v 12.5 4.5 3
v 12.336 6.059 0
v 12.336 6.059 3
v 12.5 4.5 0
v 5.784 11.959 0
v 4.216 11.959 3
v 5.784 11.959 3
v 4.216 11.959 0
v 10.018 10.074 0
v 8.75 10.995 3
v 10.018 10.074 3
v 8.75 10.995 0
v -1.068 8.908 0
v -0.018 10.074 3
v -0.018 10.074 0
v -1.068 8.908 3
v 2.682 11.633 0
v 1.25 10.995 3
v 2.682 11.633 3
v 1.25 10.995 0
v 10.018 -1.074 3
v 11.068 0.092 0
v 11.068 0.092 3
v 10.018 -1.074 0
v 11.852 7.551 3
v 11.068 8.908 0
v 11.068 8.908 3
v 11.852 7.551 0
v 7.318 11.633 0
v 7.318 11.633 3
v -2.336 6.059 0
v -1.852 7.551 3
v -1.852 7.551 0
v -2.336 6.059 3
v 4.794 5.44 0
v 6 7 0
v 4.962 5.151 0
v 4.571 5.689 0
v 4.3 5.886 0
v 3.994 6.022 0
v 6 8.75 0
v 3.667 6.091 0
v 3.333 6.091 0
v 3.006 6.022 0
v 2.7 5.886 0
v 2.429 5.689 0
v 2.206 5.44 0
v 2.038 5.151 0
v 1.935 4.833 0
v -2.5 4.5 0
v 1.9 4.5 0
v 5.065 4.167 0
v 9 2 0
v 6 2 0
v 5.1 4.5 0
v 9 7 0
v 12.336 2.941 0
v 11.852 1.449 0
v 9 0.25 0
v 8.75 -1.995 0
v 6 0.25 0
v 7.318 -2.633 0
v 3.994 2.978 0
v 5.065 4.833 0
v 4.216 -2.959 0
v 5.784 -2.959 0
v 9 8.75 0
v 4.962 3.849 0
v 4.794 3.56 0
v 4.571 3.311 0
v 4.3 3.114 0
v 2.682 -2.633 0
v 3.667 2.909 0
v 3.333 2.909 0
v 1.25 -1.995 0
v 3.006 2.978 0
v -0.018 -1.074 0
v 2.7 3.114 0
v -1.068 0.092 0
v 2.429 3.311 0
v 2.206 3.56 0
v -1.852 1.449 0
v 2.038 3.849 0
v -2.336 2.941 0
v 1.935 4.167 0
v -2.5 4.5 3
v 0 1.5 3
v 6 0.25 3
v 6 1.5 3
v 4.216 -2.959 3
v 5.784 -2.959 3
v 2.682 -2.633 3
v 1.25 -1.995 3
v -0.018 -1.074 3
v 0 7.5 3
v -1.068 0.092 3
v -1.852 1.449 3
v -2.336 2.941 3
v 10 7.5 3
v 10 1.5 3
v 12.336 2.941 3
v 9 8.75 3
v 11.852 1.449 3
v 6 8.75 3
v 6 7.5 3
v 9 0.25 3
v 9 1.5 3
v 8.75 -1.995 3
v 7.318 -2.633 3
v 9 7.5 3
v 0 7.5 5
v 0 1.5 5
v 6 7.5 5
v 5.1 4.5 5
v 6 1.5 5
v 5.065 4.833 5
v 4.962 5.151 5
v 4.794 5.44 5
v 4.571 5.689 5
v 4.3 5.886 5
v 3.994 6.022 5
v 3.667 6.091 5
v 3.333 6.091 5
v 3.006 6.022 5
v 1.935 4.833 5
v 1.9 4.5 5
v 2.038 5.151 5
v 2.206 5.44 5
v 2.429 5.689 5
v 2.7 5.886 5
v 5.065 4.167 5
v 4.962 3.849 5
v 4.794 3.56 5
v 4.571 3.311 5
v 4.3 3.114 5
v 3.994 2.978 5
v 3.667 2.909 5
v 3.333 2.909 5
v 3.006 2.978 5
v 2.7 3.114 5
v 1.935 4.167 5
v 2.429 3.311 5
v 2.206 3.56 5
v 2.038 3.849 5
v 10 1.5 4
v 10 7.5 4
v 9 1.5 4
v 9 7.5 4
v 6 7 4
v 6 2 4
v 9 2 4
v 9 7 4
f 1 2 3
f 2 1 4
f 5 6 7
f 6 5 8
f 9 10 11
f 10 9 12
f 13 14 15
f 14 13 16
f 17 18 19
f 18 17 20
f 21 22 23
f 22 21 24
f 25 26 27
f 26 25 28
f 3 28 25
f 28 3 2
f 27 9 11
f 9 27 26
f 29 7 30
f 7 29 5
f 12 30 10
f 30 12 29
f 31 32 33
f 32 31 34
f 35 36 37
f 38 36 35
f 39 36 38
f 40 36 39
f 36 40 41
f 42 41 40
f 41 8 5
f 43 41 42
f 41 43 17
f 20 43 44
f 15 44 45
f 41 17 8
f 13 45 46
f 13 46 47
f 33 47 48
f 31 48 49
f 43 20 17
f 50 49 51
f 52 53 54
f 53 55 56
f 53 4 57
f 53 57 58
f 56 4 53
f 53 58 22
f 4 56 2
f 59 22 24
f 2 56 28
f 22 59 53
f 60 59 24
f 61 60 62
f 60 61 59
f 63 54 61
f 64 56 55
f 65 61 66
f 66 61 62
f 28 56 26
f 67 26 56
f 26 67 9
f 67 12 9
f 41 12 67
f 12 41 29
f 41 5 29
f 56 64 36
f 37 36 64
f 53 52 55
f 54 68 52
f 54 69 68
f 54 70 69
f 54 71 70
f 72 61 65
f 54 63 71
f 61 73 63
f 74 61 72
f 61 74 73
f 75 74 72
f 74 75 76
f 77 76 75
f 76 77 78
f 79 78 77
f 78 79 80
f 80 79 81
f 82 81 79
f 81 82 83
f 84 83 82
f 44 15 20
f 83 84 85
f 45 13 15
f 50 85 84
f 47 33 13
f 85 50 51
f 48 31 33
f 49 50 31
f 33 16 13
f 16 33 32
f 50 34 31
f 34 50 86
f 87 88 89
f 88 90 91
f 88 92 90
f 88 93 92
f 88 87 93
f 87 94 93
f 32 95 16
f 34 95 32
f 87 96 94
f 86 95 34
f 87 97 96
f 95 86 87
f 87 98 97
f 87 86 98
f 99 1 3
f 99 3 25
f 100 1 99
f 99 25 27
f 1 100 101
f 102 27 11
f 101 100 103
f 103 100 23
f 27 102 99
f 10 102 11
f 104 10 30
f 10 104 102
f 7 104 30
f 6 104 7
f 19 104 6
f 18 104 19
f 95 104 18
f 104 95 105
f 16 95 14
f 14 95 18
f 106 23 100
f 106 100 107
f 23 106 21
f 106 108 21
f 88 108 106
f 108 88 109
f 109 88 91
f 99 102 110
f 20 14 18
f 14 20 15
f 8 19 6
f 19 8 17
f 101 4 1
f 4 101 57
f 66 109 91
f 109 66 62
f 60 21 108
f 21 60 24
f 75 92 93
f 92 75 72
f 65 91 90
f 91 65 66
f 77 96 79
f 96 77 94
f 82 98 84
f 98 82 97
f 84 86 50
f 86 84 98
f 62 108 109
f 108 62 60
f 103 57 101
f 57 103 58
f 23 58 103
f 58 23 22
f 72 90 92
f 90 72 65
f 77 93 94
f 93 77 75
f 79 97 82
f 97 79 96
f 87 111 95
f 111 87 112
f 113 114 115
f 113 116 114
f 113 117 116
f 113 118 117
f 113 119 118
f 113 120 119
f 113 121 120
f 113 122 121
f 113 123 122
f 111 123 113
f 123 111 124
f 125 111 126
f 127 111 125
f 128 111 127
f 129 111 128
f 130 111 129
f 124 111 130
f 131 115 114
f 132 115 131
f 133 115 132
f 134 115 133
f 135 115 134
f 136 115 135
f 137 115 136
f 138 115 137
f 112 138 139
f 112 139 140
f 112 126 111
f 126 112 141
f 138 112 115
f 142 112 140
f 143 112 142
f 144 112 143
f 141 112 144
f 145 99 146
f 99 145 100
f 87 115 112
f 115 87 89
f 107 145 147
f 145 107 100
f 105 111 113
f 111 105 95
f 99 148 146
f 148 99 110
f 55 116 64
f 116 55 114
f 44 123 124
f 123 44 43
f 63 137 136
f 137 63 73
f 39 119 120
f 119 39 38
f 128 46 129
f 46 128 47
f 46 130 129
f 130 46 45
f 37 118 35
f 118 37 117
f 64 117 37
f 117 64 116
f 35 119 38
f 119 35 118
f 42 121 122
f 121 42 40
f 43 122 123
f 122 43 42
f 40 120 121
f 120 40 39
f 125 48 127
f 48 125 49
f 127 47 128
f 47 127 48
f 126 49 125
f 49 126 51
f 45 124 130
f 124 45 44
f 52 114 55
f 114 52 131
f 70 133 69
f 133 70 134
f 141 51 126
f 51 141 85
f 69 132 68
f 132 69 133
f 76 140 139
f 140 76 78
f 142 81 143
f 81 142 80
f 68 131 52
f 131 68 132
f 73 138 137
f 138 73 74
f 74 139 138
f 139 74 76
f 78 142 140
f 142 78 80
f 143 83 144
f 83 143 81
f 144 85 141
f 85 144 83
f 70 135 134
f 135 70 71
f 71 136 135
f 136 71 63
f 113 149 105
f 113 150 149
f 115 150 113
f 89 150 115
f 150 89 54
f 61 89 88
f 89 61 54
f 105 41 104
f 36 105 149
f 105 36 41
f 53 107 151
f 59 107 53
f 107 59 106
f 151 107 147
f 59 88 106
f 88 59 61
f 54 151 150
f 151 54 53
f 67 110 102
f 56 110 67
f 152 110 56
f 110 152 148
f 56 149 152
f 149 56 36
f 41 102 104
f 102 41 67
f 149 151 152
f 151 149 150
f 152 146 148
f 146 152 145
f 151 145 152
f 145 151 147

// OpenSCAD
module cable_clamp()
{
    difference()
    {
        // solid
        union()
        {
            translate( [5,4.5,0] )
                cylinder( d=15, h=3, $fn=30 );
            translate([0,1.5,3])cube([10,6,2]);
        }
        // holes
        translate( [3.5,4.5,-1] )
        { 
            cylinder( d=3.2,h=10, $fn=30 );
            //cylinder( d=6.2,h=1.5, $fn=30 );
        }
       // translate([6,-1,2.25])cube([3,12,1.8]);
        translate([6,0.25,-1])cube([3,1.75,10]);
        translate([6,7,-1])cube([3,1.75,10]);
        translate([6,0.25,4])cube([5,7.5,7]);
    }
}

// proper printing position
    cable_clamp();
